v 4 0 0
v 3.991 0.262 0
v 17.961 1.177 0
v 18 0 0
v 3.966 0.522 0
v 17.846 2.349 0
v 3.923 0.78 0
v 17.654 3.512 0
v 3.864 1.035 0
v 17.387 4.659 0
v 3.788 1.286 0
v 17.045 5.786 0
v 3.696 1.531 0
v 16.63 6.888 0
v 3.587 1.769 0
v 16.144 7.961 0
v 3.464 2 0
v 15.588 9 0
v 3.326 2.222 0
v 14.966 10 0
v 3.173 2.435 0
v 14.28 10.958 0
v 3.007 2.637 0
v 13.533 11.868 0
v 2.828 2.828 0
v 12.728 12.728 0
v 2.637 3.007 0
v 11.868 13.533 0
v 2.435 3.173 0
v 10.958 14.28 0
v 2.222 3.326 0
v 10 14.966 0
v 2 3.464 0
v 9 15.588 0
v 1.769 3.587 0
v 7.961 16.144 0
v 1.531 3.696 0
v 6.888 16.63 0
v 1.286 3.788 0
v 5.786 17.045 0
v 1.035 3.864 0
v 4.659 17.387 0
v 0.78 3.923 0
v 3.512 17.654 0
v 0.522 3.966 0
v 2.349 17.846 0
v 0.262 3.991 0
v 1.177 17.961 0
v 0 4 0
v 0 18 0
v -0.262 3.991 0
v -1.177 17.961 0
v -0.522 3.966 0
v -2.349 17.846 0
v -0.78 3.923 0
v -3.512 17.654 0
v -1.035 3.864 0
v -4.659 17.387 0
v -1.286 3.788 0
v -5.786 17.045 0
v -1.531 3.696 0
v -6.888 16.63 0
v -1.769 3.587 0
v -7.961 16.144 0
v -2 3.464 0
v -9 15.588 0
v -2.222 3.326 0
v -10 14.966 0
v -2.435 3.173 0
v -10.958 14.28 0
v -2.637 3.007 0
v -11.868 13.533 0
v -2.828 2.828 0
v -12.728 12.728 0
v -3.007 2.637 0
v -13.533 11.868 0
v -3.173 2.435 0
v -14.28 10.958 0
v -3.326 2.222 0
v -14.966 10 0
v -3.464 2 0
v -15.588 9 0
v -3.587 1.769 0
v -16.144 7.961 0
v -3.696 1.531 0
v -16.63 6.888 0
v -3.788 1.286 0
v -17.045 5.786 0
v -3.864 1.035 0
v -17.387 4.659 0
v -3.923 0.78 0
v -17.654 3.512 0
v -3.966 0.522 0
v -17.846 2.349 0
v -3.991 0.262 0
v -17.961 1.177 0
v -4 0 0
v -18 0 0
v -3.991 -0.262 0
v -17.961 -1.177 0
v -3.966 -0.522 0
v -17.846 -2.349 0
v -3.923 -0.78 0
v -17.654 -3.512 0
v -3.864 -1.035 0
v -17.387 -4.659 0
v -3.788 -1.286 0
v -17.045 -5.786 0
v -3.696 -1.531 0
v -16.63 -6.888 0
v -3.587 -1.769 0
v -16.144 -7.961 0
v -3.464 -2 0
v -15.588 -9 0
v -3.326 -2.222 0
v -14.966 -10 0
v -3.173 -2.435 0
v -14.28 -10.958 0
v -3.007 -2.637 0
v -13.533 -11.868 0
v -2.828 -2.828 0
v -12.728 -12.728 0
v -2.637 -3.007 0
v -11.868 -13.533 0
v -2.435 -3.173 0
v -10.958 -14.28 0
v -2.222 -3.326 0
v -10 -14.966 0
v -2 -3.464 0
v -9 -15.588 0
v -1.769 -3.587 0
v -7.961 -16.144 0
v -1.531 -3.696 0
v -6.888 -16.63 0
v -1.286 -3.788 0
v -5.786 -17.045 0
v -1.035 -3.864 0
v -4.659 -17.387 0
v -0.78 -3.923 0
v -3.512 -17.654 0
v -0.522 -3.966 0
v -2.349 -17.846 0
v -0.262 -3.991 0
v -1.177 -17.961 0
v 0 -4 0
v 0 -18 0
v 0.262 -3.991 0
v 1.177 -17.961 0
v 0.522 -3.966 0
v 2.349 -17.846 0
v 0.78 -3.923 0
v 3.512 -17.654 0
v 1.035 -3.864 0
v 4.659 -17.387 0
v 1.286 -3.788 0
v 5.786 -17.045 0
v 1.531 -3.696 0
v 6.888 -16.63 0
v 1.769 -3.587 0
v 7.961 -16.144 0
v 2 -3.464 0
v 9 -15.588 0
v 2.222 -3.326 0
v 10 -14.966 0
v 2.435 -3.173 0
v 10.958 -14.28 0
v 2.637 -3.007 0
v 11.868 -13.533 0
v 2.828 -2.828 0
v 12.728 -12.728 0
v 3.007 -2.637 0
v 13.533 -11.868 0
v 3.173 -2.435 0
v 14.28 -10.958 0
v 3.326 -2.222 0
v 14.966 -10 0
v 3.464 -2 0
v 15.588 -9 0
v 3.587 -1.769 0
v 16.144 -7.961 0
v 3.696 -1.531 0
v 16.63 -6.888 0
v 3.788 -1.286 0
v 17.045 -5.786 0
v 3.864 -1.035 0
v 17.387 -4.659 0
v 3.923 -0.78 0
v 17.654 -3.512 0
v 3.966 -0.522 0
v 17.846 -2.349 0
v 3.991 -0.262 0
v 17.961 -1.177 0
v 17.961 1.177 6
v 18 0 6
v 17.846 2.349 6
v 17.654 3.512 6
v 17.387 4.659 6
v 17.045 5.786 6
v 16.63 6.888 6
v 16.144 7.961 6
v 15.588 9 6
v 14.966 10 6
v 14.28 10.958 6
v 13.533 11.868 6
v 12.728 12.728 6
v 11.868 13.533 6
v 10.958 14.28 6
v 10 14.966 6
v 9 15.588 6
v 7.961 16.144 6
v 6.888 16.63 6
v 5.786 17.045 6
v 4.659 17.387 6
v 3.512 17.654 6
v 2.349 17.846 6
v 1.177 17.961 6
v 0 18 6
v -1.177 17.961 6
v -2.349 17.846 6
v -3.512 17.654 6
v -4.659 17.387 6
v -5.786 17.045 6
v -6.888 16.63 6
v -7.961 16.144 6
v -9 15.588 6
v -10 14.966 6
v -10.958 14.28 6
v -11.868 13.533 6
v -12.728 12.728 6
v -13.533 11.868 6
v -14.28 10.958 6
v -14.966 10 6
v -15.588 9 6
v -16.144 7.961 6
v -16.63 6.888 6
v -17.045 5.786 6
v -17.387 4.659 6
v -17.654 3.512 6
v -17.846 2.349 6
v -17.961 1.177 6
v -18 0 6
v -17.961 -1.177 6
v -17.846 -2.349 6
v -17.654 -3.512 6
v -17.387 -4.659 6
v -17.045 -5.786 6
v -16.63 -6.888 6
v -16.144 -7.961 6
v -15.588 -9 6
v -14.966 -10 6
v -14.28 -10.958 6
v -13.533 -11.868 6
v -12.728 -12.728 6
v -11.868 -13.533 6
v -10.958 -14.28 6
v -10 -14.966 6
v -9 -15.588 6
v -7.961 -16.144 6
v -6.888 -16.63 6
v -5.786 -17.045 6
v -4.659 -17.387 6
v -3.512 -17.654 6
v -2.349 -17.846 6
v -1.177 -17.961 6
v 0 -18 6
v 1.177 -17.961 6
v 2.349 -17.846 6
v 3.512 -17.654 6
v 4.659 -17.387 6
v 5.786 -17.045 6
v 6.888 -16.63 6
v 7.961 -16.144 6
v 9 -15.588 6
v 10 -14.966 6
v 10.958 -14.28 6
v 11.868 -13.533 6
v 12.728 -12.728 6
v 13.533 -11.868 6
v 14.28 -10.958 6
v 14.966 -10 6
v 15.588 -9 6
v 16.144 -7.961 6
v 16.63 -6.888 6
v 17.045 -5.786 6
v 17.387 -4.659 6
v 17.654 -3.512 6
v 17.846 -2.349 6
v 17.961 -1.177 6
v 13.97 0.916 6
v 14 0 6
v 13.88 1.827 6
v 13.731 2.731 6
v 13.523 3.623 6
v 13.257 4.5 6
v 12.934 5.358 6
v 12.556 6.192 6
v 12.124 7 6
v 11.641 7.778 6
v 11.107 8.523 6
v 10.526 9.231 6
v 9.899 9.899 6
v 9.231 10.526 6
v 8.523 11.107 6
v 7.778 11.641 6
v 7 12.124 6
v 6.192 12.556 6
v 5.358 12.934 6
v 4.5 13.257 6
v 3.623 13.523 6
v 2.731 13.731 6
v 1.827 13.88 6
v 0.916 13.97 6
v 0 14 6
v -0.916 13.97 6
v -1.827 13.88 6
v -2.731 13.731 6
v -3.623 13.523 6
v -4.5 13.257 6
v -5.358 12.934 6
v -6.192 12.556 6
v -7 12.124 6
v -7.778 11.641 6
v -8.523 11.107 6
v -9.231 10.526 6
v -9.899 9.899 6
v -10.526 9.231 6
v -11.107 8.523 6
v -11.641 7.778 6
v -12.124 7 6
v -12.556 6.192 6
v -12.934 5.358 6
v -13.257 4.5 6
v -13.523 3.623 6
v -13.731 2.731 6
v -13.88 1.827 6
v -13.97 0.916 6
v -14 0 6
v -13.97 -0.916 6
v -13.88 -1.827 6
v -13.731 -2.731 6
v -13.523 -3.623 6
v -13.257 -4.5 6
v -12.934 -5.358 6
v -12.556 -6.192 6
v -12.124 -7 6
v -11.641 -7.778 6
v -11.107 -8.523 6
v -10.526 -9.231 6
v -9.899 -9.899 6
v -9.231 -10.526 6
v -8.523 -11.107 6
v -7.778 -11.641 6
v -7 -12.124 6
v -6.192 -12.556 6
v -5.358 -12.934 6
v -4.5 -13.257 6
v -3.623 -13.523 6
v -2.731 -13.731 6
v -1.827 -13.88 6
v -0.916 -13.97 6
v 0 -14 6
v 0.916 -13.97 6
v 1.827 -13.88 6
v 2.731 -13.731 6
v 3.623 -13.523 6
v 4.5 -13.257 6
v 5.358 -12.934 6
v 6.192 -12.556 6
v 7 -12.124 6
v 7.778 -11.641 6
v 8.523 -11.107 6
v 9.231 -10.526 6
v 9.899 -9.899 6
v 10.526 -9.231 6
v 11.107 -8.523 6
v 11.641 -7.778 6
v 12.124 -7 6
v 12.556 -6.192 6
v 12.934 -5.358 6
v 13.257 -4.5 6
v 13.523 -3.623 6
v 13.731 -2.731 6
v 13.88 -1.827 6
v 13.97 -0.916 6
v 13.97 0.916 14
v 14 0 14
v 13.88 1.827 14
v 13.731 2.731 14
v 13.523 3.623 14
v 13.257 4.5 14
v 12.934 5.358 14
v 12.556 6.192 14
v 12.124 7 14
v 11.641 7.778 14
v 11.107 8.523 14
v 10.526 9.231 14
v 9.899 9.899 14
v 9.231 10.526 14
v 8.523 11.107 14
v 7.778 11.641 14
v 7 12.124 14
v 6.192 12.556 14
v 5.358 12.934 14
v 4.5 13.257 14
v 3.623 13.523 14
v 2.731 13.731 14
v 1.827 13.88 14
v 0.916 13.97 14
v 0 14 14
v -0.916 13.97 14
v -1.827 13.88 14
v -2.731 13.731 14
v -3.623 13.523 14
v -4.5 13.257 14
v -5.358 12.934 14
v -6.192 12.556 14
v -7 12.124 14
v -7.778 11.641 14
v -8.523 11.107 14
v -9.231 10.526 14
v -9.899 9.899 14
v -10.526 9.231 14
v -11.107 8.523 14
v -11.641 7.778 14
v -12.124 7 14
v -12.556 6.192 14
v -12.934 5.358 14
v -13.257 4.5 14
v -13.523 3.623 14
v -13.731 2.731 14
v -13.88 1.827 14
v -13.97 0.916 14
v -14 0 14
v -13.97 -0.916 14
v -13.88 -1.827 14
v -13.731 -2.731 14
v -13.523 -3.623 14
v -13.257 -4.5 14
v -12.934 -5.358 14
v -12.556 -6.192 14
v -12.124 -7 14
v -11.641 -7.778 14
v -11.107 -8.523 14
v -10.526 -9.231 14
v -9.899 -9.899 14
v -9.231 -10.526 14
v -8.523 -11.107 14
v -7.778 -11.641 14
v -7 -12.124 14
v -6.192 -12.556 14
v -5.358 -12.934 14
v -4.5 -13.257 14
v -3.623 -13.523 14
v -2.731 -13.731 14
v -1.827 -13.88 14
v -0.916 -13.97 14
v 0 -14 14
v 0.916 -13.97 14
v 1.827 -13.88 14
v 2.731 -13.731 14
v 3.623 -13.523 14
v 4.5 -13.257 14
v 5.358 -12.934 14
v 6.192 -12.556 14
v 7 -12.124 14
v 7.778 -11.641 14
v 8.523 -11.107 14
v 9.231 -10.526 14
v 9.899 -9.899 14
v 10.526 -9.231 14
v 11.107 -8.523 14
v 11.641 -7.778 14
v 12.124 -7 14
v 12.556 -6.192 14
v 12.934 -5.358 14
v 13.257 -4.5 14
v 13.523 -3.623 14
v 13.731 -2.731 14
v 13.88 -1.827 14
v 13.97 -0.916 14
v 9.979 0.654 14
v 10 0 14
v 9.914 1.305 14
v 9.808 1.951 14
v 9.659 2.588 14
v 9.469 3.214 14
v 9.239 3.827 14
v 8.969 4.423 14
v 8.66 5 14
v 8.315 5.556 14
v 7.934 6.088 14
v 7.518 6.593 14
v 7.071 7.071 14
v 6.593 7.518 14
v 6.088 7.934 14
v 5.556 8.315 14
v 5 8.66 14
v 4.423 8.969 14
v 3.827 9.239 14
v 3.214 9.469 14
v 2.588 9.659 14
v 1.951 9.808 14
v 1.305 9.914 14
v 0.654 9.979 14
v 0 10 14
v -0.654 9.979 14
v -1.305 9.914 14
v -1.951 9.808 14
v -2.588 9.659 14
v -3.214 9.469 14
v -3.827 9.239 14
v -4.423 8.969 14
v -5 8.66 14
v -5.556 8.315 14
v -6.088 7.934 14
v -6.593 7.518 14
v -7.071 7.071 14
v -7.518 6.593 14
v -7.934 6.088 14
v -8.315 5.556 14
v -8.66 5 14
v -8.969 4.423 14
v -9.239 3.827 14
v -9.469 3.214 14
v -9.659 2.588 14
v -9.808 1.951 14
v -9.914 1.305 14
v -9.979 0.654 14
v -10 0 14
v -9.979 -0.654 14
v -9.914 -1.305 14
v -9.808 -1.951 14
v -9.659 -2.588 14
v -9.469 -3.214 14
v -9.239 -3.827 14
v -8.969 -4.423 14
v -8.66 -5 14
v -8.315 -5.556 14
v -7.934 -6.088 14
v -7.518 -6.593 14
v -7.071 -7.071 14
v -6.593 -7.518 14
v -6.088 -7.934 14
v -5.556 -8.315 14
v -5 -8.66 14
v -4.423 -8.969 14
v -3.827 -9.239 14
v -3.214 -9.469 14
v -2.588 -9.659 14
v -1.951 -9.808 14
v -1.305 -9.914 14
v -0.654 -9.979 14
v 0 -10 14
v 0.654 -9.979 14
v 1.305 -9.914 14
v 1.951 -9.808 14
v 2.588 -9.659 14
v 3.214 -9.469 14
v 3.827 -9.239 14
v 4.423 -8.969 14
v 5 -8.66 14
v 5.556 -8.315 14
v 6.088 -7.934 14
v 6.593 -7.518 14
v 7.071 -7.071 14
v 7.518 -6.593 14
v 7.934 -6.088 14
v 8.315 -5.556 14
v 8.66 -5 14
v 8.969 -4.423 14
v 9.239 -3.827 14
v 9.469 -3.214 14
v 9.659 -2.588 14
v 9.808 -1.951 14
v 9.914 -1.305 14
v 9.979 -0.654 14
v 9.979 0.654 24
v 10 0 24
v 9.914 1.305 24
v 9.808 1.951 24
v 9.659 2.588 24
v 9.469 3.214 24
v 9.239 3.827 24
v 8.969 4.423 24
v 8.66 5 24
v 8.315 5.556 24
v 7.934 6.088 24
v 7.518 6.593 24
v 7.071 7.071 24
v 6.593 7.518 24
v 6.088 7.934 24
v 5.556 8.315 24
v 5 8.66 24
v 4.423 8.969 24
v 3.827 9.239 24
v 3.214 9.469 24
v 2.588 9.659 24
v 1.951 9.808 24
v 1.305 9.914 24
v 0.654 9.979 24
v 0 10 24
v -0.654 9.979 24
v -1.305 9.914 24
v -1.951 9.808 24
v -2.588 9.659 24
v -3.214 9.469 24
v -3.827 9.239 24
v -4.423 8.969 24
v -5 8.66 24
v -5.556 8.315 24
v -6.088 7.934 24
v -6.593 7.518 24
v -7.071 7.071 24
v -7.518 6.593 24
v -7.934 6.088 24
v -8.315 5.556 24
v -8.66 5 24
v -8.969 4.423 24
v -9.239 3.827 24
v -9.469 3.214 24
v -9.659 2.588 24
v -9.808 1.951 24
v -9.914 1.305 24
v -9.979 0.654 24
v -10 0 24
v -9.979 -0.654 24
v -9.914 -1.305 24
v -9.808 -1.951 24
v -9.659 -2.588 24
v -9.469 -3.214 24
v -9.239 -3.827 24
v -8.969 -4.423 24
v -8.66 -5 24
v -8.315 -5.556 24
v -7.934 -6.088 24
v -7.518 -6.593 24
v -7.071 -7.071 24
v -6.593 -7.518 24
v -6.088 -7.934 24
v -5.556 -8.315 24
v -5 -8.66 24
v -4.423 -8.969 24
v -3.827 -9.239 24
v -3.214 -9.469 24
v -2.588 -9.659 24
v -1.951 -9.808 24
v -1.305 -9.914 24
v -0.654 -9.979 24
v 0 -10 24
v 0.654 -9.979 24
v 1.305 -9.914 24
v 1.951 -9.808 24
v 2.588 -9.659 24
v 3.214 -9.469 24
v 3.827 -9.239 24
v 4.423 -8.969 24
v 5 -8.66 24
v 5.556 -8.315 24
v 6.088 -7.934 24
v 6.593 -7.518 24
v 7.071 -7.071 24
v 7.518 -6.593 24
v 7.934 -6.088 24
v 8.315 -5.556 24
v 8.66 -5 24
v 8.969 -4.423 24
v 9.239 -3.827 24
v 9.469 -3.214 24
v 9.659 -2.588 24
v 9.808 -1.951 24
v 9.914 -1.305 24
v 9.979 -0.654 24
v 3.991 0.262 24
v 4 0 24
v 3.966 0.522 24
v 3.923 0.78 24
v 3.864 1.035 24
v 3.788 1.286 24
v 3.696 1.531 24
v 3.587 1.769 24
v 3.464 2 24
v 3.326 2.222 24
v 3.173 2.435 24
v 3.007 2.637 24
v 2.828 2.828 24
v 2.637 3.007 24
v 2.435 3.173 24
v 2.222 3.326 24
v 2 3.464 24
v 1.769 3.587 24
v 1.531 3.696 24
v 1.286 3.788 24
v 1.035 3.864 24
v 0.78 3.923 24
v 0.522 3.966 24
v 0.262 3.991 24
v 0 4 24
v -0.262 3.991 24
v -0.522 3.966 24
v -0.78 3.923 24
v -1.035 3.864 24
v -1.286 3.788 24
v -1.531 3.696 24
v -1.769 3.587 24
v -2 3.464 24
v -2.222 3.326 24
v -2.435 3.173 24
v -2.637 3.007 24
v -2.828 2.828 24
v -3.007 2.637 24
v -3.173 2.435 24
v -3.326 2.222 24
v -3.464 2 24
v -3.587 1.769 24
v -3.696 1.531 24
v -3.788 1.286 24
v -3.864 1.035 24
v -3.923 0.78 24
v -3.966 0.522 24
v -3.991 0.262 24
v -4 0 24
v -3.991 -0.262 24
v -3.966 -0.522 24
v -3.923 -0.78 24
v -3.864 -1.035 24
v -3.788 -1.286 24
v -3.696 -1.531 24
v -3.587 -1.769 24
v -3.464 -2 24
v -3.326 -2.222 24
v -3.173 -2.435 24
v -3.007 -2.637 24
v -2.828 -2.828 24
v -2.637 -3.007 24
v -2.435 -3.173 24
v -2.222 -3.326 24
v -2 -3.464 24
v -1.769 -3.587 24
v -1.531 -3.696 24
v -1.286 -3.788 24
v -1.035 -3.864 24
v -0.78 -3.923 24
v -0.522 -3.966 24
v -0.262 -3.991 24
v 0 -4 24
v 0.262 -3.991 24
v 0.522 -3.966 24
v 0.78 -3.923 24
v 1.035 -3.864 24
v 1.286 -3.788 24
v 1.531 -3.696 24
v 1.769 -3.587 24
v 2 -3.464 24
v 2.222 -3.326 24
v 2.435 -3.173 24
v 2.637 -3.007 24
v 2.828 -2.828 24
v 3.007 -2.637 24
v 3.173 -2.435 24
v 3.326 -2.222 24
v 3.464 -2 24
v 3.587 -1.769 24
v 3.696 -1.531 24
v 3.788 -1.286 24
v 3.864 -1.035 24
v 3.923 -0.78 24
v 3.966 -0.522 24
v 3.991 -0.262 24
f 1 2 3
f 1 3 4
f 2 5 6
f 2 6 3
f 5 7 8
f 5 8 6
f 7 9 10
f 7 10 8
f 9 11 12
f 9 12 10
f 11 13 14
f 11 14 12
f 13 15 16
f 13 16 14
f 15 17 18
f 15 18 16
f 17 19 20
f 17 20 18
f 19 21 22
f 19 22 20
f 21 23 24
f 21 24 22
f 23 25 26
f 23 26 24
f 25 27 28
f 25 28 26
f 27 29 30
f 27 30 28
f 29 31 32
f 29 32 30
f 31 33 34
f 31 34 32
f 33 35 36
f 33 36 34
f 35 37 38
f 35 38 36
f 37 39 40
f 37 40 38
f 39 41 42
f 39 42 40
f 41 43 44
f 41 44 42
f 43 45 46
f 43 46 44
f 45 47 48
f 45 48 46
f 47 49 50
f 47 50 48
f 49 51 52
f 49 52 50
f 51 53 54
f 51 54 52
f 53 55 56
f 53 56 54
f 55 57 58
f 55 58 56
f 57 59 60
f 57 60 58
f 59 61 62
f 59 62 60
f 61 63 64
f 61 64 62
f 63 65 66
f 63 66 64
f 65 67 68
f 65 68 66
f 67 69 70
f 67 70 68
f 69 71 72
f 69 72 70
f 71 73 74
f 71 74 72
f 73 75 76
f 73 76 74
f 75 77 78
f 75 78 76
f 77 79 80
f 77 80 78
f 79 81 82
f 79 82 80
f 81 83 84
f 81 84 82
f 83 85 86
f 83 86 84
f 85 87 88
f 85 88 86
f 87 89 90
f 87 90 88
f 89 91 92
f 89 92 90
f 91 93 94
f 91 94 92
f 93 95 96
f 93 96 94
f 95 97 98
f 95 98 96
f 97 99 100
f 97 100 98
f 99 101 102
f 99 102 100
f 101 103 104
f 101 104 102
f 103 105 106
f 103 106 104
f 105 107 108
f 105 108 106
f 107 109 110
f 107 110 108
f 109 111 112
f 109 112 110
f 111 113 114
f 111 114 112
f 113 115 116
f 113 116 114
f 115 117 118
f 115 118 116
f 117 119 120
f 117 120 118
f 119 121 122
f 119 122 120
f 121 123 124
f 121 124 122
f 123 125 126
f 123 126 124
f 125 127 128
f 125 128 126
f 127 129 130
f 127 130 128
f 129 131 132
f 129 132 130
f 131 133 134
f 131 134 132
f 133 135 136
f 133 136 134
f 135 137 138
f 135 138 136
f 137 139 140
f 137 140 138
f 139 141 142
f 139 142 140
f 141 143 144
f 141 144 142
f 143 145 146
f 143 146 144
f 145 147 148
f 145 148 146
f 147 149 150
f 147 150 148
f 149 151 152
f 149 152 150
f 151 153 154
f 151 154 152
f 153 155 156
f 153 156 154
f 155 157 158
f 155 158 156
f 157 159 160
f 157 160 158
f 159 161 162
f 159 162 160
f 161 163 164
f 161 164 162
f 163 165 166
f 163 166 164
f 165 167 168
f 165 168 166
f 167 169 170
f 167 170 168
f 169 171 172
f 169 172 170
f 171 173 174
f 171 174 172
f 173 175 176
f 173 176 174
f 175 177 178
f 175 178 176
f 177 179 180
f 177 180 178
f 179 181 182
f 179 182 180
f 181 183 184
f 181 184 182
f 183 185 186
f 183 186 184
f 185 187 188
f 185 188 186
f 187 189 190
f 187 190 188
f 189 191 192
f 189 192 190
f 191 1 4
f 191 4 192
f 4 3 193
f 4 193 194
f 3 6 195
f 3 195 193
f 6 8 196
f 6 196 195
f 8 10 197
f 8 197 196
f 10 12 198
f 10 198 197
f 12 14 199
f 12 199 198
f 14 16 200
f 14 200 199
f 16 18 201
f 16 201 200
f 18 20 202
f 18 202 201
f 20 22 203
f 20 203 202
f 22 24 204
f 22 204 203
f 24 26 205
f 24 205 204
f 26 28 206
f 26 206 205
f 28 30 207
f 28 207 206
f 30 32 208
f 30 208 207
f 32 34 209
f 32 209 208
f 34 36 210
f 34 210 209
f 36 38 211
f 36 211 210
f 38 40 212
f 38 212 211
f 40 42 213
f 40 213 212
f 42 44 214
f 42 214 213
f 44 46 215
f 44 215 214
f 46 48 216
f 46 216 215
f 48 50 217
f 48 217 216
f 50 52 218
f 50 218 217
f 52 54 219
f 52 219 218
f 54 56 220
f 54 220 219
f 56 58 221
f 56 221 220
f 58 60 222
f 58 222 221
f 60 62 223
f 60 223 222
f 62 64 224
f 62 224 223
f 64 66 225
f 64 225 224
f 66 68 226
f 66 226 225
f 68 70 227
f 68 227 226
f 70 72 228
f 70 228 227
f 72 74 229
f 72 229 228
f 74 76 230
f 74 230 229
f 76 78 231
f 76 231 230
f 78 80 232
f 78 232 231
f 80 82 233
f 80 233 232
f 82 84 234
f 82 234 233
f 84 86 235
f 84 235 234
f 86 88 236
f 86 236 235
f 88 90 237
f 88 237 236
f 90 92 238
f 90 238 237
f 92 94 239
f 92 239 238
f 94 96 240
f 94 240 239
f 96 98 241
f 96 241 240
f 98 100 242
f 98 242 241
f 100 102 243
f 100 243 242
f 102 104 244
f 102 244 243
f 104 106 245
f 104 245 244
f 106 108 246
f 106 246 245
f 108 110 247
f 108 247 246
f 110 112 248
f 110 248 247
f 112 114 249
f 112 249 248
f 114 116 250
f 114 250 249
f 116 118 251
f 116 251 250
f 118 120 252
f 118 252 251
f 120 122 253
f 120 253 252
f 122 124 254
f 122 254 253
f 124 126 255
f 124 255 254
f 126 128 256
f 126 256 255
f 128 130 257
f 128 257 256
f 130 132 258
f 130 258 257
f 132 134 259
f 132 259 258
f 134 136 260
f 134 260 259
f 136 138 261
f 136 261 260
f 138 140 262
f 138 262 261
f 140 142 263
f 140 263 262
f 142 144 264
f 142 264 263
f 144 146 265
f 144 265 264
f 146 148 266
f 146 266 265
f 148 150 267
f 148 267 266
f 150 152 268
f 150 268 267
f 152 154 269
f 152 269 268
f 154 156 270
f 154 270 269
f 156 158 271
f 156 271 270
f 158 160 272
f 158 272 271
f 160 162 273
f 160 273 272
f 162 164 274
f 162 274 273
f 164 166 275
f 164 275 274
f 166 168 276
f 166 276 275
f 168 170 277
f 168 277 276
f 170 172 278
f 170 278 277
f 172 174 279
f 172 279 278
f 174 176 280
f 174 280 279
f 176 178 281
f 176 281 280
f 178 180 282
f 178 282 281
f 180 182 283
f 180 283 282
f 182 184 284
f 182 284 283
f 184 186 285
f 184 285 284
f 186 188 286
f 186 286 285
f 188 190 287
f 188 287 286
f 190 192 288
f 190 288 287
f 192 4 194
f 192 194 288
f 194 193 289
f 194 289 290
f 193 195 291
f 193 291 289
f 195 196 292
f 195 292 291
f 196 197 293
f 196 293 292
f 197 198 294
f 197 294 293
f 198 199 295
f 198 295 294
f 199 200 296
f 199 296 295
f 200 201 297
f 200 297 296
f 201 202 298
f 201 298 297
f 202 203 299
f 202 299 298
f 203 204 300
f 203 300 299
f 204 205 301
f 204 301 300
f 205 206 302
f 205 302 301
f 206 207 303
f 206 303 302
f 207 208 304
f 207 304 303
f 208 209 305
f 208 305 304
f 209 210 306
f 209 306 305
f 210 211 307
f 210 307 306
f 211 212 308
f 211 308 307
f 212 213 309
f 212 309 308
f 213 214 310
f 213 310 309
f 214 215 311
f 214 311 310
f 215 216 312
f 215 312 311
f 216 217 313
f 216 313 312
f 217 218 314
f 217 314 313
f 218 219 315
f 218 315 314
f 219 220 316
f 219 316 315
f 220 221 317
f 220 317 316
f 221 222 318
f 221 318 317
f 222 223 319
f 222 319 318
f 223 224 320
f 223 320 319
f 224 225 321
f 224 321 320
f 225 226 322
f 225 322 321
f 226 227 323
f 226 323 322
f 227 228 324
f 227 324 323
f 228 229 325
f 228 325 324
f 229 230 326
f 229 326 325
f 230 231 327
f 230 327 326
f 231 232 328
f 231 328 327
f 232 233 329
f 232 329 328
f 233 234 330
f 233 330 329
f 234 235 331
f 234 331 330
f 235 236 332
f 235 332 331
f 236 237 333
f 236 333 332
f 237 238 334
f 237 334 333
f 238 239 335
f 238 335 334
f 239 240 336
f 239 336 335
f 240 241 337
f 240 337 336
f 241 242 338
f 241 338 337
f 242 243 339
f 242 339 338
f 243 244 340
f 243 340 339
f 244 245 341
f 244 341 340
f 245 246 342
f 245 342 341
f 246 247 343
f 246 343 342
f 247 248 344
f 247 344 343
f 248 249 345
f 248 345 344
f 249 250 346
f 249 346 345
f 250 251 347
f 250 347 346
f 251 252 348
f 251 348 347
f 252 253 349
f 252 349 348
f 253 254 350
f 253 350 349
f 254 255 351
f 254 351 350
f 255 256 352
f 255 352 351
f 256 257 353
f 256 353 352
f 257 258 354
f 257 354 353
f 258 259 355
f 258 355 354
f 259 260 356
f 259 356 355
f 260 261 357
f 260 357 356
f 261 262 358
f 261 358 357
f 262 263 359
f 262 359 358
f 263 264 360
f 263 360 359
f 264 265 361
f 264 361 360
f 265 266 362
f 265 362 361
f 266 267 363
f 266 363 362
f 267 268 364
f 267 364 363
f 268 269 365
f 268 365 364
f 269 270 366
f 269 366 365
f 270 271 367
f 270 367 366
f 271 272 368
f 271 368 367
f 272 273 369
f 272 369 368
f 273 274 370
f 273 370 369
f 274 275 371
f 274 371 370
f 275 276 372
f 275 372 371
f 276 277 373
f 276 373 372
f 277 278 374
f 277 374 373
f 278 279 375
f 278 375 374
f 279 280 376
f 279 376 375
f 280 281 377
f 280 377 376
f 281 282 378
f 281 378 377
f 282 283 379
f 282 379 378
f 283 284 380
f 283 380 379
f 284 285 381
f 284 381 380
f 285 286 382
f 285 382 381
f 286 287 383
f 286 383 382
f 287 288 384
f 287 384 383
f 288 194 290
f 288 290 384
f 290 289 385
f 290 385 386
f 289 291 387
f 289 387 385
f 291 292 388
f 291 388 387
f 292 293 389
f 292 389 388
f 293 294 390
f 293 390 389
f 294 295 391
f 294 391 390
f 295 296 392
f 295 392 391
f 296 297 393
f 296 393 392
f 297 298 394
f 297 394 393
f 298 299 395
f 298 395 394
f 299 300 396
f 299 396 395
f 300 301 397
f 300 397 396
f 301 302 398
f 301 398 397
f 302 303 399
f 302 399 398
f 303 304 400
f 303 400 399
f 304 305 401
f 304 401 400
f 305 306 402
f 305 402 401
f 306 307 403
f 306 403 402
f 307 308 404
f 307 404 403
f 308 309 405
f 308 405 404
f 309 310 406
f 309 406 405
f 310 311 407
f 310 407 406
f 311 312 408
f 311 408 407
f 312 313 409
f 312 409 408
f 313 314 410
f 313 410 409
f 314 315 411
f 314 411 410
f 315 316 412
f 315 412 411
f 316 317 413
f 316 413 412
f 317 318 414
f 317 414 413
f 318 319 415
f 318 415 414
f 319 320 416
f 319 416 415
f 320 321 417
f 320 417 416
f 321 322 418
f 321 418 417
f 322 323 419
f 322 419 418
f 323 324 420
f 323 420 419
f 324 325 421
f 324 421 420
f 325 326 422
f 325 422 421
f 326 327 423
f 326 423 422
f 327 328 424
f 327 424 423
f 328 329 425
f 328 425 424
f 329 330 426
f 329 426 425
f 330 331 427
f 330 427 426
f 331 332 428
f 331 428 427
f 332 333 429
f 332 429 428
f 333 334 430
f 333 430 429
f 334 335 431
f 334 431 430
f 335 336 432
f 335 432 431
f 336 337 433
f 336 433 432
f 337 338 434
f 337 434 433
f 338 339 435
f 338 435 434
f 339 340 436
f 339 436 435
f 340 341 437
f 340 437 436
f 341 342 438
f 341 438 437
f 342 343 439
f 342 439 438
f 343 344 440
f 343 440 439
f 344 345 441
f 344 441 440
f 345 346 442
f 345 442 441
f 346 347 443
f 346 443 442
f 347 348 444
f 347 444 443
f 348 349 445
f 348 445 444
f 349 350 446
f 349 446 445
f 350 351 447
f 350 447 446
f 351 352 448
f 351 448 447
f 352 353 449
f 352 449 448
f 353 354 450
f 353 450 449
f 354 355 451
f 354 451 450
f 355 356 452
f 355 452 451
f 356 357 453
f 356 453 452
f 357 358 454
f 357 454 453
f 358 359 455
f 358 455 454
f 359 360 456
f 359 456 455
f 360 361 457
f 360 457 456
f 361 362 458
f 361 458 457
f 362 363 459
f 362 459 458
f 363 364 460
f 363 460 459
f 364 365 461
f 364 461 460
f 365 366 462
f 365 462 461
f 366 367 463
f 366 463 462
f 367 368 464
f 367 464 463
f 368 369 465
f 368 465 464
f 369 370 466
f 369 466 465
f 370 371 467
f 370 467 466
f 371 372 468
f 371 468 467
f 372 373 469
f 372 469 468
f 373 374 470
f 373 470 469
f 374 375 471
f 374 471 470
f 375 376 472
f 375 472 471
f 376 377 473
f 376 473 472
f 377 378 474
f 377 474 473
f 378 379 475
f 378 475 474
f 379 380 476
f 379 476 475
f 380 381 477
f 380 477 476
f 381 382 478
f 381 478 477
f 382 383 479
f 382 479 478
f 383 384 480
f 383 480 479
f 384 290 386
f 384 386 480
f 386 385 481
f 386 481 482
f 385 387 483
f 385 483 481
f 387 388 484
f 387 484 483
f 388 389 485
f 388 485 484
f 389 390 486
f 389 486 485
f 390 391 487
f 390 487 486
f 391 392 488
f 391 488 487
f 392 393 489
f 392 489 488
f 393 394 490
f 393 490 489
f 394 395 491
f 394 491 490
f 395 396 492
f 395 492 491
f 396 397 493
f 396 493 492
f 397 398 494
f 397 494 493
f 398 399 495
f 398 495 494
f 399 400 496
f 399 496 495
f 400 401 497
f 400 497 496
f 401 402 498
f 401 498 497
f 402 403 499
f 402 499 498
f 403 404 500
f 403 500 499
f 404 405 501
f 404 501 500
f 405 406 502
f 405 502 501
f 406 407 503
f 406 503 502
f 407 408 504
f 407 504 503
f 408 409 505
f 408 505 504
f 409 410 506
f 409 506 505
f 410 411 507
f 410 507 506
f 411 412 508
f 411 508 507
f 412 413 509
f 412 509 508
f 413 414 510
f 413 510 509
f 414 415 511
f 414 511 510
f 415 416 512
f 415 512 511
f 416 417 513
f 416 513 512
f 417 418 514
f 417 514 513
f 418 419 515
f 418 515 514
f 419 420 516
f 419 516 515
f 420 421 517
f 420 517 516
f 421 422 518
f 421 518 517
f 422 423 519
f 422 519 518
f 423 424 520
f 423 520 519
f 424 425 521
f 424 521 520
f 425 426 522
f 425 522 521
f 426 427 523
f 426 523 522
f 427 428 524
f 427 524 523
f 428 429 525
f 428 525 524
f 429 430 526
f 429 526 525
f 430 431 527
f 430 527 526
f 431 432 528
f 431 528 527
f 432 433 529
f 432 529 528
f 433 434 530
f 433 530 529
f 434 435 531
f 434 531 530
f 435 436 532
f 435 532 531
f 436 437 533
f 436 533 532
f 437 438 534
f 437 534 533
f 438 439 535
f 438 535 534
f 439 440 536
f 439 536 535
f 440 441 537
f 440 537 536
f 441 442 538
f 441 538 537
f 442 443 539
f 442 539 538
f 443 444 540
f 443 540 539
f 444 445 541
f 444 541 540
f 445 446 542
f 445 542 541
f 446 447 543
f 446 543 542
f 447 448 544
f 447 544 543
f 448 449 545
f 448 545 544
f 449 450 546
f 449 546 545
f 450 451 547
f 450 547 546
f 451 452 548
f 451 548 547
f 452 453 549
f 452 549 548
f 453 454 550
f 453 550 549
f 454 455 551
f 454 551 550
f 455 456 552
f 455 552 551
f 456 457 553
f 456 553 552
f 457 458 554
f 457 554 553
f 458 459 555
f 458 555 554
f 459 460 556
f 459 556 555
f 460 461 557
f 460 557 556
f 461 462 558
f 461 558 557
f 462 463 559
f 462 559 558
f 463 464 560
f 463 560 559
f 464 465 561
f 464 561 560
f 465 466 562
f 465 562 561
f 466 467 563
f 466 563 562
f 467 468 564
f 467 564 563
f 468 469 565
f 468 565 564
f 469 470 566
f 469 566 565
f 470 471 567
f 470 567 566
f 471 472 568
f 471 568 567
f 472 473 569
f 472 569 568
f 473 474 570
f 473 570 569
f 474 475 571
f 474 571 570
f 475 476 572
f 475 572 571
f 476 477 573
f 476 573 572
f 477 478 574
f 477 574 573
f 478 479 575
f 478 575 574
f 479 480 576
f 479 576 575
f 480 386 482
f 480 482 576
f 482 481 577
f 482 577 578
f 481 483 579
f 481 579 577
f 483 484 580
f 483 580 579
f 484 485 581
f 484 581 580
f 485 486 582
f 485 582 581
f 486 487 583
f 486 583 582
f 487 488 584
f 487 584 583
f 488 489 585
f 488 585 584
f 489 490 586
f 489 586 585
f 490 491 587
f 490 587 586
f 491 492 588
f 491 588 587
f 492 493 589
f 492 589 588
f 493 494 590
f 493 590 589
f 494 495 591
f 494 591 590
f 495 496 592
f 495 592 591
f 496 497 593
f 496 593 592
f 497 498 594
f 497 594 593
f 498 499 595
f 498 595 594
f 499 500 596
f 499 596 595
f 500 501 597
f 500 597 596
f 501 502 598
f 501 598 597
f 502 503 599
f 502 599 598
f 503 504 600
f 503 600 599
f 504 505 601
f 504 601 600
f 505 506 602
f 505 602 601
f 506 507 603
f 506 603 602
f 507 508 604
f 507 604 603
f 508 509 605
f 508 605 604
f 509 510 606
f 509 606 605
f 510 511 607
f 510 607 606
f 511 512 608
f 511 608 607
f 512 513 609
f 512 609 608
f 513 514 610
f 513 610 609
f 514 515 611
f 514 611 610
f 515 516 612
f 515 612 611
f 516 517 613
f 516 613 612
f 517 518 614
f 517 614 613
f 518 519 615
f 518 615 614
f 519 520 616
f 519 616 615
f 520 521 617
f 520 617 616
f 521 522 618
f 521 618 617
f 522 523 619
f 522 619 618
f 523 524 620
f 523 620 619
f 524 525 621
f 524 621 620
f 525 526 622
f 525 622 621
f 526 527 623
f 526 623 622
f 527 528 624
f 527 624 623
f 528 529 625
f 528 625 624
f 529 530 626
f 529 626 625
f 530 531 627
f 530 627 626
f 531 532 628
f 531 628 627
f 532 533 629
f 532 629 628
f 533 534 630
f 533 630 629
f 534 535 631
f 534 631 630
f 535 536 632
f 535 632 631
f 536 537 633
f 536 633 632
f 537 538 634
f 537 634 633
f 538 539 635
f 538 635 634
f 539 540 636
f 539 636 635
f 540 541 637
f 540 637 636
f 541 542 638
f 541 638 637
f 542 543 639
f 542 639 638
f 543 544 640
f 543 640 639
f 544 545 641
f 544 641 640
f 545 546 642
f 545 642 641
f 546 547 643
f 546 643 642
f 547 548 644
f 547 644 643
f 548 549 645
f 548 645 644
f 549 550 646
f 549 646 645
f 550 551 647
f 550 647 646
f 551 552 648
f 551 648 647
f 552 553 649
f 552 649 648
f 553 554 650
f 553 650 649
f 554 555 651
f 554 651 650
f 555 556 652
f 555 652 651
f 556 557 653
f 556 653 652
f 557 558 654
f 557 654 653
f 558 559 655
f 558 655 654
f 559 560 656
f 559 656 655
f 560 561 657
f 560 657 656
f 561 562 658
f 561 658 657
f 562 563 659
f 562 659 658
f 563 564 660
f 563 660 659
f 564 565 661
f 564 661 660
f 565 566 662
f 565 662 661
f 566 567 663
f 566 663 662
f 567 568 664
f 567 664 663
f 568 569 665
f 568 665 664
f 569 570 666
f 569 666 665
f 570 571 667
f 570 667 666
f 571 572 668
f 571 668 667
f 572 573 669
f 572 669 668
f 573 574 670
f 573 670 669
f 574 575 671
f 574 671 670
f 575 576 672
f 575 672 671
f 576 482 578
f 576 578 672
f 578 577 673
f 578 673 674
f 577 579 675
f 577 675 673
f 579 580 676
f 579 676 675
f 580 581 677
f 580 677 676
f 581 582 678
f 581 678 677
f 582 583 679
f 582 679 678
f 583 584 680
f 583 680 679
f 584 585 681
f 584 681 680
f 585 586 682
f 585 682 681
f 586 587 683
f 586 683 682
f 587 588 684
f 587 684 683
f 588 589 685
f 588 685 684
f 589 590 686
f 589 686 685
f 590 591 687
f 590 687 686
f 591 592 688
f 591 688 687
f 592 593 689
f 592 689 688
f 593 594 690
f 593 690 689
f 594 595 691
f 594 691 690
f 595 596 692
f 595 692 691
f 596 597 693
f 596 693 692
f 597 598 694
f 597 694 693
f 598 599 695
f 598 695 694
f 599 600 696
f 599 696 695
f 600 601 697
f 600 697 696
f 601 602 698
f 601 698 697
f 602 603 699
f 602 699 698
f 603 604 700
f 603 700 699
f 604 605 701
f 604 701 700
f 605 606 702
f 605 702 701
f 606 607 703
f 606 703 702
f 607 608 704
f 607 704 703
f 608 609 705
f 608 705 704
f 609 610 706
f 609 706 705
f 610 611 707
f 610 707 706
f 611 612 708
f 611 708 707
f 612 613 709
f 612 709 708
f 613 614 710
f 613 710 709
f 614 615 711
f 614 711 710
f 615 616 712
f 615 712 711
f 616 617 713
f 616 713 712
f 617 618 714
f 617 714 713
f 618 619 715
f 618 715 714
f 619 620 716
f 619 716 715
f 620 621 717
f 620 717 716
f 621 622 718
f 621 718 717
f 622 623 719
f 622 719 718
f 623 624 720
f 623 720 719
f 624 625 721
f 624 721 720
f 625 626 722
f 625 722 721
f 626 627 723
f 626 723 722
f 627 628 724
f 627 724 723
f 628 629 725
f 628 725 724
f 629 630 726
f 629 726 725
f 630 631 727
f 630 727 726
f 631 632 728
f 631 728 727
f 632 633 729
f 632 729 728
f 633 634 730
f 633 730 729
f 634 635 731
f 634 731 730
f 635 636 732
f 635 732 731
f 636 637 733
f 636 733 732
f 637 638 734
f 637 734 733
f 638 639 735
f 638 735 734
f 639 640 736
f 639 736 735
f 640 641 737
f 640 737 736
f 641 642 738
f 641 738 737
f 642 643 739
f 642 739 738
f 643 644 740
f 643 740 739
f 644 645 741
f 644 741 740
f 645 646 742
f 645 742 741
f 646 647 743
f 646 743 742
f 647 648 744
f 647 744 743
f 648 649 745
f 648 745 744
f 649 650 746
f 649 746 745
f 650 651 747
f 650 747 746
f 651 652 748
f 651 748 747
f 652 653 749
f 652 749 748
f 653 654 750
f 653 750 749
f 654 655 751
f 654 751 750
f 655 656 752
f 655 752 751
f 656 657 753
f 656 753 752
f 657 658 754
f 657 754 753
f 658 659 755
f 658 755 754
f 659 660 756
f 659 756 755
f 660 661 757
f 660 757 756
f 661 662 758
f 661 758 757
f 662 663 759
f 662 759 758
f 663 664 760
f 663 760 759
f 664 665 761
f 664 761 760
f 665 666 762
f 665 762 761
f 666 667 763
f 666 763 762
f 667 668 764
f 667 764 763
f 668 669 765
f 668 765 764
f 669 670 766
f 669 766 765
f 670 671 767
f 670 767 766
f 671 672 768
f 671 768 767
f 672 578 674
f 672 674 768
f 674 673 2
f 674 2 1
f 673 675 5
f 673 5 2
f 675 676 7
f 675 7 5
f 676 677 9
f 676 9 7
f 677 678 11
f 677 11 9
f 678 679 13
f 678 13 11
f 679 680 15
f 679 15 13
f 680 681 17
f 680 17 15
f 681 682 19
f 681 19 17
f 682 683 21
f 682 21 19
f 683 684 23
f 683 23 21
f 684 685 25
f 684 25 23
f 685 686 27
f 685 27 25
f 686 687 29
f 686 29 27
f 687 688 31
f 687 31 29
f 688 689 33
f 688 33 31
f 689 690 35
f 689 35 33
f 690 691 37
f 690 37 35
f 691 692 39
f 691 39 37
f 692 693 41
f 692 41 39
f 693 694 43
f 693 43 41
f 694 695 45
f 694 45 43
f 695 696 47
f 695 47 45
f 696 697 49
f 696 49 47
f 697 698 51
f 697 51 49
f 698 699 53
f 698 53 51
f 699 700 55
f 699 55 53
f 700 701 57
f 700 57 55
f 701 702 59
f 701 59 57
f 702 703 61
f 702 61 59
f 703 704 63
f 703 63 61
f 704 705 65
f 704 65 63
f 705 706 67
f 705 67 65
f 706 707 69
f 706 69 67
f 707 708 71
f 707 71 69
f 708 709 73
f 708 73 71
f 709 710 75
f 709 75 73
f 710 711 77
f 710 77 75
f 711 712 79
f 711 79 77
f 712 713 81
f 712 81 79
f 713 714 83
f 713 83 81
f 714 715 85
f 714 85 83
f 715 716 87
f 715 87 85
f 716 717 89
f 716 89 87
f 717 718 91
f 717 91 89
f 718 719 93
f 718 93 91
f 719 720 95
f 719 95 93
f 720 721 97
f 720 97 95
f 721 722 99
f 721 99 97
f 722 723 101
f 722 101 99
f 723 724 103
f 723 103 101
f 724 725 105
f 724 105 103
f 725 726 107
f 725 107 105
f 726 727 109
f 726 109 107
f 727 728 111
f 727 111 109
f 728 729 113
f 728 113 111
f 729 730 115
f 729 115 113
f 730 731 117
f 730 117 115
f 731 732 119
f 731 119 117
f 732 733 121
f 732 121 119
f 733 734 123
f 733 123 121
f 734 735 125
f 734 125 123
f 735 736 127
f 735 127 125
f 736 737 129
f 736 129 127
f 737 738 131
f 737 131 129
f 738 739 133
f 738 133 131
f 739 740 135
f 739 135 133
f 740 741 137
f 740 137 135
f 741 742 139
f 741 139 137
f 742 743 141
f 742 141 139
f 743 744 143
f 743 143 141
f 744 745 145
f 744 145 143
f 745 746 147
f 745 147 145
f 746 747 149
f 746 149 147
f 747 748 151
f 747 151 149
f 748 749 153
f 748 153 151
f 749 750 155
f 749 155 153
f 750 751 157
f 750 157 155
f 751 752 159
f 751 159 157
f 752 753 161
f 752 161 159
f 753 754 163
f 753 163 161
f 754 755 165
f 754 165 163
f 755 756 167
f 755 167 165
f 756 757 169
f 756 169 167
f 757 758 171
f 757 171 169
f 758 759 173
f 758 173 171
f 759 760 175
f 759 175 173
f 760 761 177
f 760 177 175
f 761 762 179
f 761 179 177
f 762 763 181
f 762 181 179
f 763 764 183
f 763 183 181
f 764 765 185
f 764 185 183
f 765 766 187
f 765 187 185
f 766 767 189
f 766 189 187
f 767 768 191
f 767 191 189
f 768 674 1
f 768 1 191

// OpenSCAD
// Original MechIntel educational model. CC0-1.0. Units: mm.
// Not a standardized or load-rated component.
$fn=96;
// Section points: [radius, height], mm. Edit to change the profile.
section=[[4, 0], [18, 0], [18, 6], [14, 6], [14, 14], [10, 14], [10, 24], [4, 24]];
rotate_extrude($fn=96) polygon(points=section);
